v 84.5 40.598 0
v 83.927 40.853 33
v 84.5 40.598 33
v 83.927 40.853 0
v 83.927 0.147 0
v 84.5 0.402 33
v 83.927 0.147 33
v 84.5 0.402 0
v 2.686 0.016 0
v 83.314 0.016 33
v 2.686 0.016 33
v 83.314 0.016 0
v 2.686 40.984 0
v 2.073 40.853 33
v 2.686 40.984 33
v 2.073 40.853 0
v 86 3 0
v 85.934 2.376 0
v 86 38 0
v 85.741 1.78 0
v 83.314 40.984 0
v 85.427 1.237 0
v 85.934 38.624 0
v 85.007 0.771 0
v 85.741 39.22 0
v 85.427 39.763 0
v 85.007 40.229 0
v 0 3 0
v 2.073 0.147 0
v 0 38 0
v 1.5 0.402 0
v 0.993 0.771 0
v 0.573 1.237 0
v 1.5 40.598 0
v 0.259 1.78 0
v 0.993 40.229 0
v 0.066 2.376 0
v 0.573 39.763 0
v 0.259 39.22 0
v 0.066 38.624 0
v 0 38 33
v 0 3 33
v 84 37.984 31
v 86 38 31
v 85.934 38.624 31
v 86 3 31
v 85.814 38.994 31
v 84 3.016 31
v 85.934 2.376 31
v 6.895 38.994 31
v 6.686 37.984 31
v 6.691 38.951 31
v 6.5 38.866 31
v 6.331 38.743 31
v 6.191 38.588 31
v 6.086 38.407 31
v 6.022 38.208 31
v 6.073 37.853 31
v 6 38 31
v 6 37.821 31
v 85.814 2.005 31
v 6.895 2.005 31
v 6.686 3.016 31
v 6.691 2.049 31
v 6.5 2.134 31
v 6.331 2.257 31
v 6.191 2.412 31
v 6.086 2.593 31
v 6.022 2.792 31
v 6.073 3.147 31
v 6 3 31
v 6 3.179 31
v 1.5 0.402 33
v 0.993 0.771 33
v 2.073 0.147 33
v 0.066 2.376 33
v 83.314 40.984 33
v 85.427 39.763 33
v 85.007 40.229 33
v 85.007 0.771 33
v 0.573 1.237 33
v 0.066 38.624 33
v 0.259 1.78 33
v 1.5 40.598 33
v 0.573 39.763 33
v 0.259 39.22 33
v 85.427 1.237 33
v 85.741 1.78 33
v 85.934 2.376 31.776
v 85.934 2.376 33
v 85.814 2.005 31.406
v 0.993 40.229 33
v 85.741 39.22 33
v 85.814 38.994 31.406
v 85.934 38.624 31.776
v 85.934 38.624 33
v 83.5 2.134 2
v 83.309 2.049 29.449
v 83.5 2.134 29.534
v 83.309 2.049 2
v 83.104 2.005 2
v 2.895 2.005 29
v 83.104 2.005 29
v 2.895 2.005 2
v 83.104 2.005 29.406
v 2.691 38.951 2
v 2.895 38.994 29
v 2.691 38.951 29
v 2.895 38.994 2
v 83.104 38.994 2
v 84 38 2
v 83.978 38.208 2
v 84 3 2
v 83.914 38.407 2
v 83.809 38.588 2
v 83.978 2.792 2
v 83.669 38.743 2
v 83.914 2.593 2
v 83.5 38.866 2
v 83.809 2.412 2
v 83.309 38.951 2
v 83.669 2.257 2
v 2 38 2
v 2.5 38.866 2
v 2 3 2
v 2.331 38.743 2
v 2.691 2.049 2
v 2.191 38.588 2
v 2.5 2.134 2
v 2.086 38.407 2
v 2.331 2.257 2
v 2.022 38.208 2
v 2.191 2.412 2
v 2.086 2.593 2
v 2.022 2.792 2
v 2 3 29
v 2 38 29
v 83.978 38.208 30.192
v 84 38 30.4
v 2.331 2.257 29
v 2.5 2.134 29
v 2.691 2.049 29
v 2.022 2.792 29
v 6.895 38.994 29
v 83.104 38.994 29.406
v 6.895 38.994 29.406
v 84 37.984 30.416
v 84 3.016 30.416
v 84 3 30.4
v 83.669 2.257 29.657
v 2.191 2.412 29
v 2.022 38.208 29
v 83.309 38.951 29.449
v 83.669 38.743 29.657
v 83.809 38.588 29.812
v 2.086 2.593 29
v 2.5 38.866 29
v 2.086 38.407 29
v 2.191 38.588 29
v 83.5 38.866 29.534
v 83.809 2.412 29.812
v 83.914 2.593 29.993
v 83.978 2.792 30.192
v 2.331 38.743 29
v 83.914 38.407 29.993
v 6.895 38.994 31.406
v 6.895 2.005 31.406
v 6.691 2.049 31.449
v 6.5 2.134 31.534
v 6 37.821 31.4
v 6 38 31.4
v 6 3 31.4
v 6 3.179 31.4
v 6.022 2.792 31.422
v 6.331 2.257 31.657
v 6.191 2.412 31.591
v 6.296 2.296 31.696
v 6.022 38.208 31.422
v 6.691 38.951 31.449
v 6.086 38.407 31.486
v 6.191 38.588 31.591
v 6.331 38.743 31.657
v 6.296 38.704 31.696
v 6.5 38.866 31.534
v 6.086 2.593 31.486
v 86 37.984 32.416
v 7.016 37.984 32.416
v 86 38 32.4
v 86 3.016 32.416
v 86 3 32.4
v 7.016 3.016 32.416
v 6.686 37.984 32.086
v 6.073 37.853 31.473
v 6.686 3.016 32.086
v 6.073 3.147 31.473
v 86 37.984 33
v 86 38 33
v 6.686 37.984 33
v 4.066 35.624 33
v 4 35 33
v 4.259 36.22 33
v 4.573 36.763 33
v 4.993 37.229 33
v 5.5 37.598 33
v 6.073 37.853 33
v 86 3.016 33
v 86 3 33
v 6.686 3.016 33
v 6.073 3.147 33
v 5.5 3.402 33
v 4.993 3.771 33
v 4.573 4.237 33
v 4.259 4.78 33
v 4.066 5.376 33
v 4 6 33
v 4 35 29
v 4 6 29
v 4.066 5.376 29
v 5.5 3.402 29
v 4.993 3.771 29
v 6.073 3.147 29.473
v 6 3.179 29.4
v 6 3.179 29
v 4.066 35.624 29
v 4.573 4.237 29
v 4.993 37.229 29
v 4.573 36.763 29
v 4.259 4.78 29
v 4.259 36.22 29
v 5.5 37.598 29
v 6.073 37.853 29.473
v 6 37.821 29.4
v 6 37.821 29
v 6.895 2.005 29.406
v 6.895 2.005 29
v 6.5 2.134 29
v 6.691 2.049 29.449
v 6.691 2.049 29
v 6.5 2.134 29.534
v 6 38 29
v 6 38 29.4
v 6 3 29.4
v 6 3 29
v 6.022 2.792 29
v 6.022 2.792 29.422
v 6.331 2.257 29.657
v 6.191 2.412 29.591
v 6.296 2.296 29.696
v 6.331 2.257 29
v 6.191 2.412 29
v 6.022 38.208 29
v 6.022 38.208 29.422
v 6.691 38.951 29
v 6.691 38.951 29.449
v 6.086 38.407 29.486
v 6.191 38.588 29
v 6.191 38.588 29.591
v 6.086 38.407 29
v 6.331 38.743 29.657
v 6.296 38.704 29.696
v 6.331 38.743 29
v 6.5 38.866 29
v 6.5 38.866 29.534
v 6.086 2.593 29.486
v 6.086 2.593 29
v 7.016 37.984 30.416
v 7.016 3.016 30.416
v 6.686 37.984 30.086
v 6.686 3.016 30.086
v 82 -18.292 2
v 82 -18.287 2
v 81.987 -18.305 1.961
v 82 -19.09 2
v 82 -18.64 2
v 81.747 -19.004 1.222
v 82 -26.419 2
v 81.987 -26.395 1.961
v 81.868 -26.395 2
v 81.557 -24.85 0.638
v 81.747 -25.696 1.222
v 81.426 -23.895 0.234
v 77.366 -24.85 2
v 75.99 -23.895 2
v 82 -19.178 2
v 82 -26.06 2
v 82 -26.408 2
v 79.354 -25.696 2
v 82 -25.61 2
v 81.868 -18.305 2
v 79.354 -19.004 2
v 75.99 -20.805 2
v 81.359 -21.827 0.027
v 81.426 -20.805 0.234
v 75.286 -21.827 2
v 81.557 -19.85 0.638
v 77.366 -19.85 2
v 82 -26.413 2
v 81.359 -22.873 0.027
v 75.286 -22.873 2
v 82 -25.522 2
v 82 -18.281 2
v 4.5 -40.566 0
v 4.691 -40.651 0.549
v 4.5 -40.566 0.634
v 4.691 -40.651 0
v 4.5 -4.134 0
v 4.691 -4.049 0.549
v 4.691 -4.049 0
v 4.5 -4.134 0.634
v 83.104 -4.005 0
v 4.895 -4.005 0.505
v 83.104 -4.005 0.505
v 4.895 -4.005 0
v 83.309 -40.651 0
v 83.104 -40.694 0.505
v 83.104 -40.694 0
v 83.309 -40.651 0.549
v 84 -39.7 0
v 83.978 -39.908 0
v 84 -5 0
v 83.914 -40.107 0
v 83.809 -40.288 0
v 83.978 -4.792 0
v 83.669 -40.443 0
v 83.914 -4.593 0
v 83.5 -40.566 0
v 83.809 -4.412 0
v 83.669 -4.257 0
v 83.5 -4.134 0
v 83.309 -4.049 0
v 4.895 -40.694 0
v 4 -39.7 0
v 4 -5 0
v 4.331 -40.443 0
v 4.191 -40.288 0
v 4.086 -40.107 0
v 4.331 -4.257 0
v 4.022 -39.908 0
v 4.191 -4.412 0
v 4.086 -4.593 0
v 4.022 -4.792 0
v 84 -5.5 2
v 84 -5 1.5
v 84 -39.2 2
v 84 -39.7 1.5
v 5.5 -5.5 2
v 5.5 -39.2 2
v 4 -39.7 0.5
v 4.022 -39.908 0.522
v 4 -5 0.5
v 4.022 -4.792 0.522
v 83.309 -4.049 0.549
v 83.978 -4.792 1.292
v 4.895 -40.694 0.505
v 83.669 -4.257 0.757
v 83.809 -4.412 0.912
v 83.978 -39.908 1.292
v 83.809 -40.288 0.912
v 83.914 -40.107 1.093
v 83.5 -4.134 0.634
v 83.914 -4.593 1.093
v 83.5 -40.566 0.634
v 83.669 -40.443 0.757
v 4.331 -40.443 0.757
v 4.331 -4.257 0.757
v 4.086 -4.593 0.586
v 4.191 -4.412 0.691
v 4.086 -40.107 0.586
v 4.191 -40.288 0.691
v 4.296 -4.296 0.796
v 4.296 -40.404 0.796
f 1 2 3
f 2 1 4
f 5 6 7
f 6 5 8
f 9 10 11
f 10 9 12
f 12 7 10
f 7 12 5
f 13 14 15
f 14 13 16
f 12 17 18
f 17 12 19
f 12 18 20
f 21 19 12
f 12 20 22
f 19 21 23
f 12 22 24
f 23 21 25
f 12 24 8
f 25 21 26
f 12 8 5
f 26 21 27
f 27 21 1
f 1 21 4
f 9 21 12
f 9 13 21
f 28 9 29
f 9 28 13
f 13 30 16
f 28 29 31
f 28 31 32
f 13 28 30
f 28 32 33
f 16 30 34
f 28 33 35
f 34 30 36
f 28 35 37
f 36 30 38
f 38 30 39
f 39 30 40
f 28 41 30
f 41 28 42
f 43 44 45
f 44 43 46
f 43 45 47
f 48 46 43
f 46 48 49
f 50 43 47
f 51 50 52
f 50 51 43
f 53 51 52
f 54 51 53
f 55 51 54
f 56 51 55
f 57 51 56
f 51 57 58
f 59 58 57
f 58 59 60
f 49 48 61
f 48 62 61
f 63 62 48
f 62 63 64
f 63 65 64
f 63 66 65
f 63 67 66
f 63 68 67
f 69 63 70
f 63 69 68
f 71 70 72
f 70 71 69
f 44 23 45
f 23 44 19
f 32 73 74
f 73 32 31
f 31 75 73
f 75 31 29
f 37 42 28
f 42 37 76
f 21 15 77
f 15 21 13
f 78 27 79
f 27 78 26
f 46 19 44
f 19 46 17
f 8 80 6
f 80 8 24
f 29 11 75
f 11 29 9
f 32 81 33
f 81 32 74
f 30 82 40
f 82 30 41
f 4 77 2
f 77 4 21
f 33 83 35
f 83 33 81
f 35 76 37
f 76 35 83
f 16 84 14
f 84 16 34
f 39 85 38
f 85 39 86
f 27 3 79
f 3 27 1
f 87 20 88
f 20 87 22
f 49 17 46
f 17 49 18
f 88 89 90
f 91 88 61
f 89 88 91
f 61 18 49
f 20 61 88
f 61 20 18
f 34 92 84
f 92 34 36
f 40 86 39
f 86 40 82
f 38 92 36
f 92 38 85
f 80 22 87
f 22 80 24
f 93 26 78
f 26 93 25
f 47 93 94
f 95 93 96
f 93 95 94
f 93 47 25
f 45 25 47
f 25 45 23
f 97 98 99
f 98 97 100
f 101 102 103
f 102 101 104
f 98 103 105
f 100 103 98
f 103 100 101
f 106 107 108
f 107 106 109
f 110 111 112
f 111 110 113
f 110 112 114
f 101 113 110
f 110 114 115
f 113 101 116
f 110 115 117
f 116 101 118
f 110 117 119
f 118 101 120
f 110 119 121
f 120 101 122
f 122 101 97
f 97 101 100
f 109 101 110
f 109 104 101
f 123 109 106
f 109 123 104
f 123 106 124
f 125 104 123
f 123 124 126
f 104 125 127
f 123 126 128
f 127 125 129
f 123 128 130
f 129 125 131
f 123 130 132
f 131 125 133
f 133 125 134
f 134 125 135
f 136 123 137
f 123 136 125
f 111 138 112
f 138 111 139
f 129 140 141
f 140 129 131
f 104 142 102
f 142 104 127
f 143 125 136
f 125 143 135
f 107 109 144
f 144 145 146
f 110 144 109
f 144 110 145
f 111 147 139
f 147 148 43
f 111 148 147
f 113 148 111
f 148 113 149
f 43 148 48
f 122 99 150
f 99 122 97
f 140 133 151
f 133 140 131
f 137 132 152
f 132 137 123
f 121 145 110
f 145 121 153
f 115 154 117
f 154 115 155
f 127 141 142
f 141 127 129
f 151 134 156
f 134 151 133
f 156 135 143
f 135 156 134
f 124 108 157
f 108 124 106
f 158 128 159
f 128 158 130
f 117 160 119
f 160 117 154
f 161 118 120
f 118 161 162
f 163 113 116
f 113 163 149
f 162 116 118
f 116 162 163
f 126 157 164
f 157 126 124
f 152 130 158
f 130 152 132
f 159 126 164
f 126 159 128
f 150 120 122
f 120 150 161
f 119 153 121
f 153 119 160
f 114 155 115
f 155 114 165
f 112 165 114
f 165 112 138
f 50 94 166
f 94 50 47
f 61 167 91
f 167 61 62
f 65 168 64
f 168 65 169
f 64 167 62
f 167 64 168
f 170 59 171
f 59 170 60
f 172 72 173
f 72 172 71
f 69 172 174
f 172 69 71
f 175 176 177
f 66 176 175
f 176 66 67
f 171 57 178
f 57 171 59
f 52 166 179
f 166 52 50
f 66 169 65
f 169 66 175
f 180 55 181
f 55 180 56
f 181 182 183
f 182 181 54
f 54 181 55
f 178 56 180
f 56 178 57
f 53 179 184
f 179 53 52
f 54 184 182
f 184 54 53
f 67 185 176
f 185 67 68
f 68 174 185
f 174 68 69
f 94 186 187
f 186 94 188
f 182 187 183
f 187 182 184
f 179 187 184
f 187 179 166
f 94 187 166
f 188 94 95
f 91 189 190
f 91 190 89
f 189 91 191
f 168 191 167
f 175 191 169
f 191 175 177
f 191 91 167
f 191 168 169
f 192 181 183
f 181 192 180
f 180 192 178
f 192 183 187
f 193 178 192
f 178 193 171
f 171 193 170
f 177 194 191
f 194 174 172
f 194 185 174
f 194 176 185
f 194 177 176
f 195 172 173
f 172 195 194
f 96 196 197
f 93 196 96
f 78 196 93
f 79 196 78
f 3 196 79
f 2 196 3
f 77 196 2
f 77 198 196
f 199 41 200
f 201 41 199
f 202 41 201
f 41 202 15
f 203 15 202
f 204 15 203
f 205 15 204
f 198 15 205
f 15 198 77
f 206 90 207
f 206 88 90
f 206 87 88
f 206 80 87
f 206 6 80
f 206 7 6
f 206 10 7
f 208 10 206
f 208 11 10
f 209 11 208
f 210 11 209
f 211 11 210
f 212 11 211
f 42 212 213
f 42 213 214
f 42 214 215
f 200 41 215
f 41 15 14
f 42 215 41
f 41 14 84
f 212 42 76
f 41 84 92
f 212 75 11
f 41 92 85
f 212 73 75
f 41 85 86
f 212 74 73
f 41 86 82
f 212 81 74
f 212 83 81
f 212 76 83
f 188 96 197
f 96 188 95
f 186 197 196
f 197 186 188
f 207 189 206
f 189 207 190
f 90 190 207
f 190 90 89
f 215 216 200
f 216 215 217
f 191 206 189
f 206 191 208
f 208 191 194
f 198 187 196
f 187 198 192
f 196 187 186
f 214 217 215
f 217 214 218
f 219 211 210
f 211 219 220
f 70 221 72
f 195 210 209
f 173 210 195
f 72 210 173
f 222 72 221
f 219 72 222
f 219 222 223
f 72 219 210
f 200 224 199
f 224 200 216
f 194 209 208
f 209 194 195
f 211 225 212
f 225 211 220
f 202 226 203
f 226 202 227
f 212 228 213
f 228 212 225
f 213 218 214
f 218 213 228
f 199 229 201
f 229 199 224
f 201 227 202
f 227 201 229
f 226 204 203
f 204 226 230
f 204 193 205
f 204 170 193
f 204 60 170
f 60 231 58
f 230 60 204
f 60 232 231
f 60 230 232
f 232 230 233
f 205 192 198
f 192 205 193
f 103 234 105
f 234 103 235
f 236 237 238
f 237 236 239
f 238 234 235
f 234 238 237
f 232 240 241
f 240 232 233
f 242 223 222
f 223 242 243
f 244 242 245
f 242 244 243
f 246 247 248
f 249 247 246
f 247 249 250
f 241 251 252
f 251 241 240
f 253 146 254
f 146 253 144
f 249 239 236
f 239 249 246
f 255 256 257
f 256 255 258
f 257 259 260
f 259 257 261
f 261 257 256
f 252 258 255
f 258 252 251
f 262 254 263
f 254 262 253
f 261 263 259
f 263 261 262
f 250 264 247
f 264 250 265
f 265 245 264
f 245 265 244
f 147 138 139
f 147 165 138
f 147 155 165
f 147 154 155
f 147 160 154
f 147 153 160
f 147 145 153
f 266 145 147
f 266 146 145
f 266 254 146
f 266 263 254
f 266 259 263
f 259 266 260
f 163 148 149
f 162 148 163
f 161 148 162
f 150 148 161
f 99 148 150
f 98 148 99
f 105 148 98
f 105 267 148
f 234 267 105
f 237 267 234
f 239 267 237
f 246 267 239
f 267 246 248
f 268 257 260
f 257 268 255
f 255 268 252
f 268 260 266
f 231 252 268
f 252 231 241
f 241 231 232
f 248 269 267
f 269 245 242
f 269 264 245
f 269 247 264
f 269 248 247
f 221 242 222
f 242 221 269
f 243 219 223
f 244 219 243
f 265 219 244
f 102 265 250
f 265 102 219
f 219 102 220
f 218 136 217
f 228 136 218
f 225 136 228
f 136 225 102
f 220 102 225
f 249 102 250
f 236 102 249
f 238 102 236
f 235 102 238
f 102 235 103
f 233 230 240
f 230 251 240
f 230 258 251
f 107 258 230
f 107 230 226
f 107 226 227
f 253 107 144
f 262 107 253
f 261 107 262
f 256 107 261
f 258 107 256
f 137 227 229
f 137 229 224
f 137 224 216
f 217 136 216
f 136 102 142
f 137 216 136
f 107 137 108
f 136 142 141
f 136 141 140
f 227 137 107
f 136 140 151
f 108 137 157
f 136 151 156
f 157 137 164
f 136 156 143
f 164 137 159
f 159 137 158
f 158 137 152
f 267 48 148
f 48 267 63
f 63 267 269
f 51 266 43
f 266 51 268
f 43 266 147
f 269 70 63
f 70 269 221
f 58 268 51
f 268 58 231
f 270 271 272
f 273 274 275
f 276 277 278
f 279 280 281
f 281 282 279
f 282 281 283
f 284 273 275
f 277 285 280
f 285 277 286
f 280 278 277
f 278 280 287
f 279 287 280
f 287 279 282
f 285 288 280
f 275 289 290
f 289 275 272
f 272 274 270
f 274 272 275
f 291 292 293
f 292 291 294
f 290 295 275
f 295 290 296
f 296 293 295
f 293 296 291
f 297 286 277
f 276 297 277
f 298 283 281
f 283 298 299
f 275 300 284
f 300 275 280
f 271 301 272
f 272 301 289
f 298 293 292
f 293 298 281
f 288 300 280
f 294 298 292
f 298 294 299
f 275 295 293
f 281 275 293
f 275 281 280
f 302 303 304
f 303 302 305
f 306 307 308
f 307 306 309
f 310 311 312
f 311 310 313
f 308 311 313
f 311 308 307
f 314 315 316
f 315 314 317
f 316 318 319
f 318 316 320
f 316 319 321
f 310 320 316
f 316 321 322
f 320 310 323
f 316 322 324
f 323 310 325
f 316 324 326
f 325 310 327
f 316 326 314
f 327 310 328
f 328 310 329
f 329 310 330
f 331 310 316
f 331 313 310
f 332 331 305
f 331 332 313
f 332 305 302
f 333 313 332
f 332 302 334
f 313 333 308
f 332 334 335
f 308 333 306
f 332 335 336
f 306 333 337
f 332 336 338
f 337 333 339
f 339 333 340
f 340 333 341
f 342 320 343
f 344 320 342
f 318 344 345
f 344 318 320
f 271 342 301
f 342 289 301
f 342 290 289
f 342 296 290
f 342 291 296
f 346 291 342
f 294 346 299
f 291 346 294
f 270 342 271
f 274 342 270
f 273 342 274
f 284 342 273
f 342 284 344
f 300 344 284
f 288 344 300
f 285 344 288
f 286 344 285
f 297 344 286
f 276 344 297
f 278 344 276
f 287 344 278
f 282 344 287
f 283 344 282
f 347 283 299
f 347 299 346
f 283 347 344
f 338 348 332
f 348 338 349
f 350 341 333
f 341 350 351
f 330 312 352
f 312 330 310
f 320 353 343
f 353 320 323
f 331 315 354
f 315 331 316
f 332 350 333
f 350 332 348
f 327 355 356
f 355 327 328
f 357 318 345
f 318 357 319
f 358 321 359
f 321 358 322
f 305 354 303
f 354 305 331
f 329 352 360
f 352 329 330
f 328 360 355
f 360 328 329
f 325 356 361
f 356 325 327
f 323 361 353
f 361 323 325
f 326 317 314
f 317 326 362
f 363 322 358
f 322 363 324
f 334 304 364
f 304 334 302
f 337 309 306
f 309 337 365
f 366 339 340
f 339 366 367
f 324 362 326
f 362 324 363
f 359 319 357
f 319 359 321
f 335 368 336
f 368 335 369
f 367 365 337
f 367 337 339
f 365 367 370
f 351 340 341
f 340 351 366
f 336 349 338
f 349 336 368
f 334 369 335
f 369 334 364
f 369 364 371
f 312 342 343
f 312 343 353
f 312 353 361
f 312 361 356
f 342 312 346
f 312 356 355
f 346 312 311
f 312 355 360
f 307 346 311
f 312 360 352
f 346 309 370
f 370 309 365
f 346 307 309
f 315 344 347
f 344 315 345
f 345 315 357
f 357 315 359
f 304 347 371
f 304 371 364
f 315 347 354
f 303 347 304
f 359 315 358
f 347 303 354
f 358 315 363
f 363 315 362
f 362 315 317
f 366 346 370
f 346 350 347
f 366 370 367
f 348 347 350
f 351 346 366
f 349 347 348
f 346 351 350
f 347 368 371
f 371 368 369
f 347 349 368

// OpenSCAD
itemsShown="both"; // [both,box,lid]
boxLength=86;
boxWidth=41;
boxHeight=33;
cornerRadius=3;
wallThickness=2;
bottomThickness=2;
lidThickness=2;
lidClearance=0.3;
lidEdgeThickness=0.5;
// Notch in the lid
withNotch=true;//true;//[true:false]

/* [Global] */
if (itemsShown=="box") showBox();
if (itemsShown=="lid") showLid();
if (itemsShown=="both"){showBox();showLid();}

module showLid(){
	translate ([0, -2*wallThickness, 0]) 
	roundBoxLid(l=boxLength-wallThickness,
				w=boxWidth-2*wallThickness-lidClearance,
				h=lidThickness,
				et=lidEdgeThickness,
				r=cornerRadius-wallThickness,
				notch=withNotch);
}

module showBox(){
	round_box(l=boxLength,
			  w=boxWidth,
			  h=boxHeight,
			  bt=bottomThickness,
			  wt=wallThickness,
			  lt=lidThickness,
			  r=cornerRadius);
}

module round_box(l=40,w=30,h=30,bt=2,wt=2,lt=2,r=5,){
	difference() { 
		round_cube(l=l,w=w,h=h-lt,r=r);
		translate ([wt, wt, bt]) 
		round_cube(l=l-wt*2,w=w-wt*2,h=h,r=r-wt);
	}
	//use two box rims. one to make a slope to support the lid
	roundBoxRim();
	translate ([0, 0, -wt]) roundBoxRim();
}

module roundBoxRim(l=boxLength,
				   w=boxWidth,
				   h=boxHeight,
				   et=lidEdgeThickness,
				   r=cornerRadius,
				   wt=wallThickness,
				   lt=lidThickness){
	difference() { 
		translate ([0, 0, h-lt]) 
		round_cube(l=l,w=w,h=lt,r=r);
		translate ([wt+lt,wt+lt-et*2,h-lt-0.1]) 
		round_cube(l=l*2,w=w-2*(wt+lt)+4*et,h=lt+0.2,r=r-wt+lt);

		//subtract out a lid to make the ledge
		translate ([wt, w-wt, h-lt-0.1])
		roundBoxLid(l=l*2,w=w-2*wt,h=lt+0.1,wt=wt,t=lt,et=0.5,r=r-wt,notch=false);
	}
}

module roundBoxLid(l=40,w=30,h=3,wt=2,t=2,et=0.5,r=5,notch=true){
	translate ([l, 0, 0]) 
	rotate (a = [0, 0, 180]) 
	difference(){
		round_cube(l=l-1-3,w=w,h=h,t=t,r=r);

		translate ([-1, 0, et]) rotate (a = [45, 0, 0])  cube (size = [l+2-3, h*2, h*2]); 
		translate ([-1, w, et]) rotate (a = [45, 0, 0])  cube (size = [l+2-3, h*2, h*2]); 
		translate ([l-1-3, -1, et]) rotate (a = [45, 0, 90]) cube (size = [w+2, h*2, h*2]); 
		if (notch==true){
			translate([2,w/2,h+0.001]) thumbNotch(10/2,72,t);
		}
	}
}

module thumbNotch(
	thumbR=12/2,
	angle=72,
	notchHeight=2){

	size=10*thumbR;

	rotate([0,0,90])
	difference(){
		translate([0,
					(thumbR*sin(angle)-notchHeight)/tan(angle),
					 thumbR*sin(angle)-notchHeight])
		rotate([angle,0,0])
		cylinder(r=thumbR,h=size,$fn=30);

		translate([-size,-size,0])
		cube(size*2);
	}
}

module round_cube(l=40,w=30,h=20,r=5,$fn=30){
	hull(){ 
		translate ([r, r, 0]) cylinder (h = h, r=r);
		translate ([r, w-r, 0]) cylinder (h = h, r=r);
		translate ([l-r,w-r, 0]) cylinder (h = h, r=r);
		translate ([l-r, r, 0]) cylinder (h = h, r=r);
	}
}
